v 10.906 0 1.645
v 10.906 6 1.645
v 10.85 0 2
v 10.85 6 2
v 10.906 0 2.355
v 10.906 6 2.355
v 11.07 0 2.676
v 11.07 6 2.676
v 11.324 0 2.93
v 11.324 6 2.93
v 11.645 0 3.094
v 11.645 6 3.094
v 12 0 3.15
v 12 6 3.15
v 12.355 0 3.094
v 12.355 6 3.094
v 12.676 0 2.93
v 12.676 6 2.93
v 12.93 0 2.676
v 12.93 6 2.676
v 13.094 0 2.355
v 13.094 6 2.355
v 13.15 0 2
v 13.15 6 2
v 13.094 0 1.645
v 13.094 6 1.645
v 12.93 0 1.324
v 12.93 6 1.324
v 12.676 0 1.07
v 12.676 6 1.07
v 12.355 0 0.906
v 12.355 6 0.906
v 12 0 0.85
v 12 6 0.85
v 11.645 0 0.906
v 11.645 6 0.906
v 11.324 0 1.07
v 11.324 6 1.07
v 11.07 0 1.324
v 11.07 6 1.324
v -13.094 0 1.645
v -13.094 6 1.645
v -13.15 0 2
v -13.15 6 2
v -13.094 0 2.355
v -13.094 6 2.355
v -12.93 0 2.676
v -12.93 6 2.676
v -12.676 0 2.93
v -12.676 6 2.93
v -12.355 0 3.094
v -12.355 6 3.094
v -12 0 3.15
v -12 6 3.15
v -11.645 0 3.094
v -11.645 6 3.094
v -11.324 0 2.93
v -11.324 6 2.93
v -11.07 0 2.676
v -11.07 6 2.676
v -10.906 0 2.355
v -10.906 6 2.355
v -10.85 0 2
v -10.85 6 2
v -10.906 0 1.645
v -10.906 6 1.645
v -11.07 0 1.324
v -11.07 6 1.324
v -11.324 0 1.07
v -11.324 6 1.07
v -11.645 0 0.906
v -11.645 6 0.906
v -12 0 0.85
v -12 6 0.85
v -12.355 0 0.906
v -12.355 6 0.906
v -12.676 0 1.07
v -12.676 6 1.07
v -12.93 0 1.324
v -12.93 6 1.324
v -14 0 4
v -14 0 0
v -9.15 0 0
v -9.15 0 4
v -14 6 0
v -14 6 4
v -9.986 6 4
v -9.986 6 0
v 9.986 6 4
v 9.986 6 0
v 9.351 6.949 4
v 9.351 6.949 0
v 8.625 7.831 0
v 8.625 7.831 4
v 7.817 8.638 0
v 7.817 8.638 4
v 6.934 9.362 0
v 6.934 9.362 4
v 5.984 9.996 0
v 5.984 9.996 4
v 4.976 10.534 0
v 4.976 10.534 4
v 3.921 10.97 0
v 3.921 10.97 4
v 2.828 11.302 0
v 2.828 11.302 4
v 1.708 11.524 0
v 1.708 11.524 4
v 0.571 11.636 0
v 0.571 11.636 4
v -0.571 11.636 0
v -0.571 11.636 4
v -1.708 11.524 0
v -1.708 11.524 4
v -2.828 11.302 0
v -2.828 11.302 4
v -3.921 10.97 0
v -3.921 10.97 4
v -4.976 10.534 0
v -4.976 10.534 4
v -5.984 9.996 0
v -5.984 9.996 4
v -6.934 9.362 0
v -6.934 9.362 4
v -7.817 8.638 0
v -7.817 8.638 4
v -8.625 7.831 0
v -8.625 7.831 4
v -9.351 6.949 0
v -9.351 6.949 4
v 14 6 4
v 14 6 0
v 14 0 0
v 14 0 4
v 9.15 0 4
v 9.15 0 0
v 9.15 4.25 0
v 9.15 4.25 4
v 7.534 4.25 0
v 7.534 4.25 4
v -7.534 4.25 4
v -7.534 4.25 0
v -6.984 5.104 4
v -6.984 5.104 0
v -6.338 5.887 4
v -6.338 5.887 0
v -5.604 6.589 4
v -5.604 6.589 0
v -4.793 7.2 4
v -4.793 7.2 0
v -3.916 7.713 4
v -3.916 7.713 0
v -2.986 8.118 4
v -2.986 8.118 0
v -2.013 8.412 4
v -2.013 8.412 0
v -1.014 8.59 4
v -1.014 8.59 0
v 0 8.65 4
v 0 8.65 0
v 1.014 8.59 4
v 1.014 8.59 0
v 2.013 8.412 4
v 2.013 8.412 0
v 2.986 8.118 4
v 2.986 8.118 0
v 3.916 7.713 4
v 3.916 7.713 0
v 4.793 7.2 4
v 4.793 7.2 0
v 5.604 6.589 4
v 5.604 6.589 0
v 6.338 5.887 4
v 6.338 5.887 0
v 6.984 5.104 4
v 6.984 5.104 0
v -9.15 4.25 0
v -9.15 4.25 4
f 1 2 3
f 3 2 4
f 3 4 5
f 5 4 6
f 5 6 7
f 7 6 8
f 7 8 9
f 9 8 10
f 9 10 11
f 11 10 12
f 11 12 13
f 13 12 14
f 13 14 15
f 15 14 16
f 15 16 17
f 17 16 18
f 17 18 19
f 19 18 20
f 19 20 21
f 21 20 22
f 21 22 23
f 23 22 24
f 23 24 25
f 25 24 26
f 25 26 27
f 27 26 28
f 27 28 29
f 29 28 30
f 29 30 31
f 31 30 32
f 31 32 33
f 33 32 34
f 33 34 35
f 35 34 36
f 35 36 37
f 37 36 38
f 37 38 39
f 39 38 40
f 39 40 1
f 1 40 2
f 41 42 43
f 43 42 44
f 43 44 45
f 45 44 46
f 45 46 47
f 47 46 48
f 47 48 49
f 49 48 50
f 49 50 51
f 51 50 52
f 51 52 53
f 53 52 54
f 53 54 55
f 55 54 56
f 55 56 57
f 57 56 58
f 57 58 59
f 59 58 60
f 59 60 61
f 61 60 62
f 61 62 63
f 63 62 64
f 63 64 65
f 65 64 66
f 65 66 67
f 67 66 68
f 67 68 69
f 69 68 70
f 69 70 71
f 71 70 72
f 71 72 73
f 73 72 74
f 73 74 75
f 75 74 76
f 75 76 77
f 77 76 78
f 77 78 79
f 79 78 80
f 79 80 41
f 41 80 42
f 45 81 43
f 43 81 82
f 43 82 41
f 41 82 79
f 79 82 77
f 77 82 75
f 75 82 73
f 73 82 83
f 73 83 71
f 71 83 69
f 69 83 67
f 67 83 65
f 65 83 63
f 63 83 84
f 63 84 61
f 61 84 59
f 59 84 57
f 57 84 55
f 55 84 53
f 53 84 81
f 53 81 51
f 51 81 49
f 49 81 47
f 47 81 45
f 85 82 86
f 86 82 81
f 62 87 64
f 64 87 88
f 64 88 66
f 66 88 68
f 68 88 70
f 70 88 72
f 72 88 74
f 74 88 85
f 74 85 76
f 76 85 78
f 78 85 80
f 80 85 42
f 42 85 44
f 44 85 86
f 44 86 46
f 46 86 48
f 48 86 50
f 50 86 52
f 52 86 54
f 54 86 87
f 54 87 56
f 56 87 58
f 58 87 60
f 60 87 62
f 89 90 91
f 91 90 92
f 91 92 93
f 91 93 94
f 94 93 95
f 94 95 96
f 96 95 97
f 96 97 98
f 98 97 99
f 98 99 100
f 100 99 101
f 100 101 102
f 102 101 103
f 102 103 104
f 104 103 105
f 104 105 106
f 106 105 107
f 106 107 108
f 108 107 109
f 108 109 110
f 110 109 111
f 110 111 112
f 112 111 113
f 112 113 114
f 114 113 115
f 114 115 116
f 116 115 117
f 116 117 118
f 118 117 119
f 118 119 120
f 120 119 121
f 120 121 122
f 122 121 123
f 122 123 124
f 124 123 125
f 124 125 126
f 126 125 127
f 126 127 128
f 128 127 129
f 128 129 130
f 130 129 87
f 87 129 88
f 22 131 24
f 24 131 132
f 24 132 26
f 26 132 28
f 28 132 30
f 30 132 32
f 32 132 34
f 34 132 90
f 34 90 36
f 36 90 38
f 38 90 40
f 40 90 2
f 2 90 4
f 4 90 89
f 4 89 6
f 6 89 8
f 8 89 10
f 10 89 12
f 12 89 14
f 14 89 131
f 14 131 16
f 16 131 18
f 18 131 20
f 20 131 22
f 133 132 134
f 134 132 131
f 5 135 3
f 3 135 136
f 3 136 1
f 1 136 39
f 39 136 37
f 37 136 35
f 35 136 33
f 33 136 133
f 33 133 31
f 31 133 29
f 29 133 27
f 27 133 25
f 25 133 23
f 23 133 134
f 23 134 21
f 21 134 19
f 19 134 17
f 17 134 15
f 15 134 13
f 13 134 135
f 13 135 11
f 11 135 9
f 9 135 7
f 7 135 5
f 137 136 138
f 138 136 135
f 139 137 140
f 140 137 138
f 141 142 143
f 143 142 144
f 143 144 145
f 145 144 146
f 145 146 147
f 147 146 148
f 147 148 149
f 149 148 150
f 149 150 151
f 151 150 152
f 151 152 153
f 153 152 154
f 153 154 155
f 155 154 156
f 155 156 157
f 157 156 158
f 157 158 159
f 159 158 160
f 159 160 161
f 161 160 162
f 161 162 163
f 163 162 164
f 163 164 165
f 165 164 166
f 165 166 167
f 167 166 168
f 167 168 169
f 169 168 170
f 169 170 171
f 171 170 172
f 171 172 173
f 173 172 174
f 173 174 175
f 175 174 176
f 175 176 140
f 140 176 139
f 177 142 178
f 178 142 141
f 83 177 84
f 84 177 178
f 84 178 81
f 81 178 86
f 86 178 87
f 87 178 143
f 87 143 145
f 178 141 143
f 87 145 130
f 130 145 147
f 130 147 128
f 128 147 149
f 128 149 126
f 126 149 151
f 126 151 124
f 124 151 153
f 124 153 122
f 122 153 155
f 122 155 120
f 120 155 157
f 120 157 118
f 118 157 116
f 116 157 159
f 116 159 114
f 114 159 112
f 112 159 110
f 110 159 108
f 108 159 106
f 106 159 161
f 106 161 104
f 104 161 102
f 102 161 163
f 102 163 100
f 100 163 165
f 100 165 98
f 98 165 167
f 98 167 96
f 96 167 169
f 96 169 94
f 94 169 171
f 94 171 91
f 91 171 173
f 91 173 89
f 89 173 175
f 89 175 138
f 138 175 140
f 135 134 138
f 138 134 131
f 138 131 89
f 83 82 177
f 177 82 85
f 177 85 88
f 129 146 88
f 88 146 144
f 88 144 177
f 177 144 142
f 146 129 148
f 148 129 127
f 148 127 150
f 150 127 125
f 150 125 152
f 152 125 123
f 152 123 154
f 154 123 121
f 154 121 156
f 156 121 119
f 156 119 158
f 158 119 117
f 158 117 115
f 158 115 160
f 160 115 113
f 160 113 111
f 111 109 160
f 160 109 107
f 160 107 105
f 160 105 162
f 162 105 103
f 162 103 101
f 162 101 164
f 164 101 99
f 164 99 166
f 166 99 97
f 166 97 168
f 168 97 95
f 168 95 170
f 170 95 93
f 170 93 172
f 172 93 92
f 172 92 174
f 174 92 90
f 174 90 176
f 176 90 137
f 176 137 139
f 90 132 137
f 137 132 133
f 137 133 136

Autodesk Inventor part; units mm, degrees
ref_plane "YZ Plane" through (0, 0, 0) normal (1, 0, 0) x (0, 1, 0)
ref_plane "XZ Plane" through (0, 0, 0) normal (0, 1, 0) x (-1, 0, 0)
ref_plane "XY Plane" through (0, 0, 0) normal (0, 0, 1) x (1, 0, 0)
sketch "스케치1" plane through (0, 0, 0) normal (0, 0, 1) x (1, 0, 0)
  line L0 (-14, 0) -> (14, 0)
  circle A0 centre (0, 0) radius 8.65
  line L1 (-9.15, 4.25) -> (9.15, 4.25)
  line L2 (9.15, 4.25) -> (9.15, -4.25)
  line L3 (9.15, -4.25) -> (-9.15, -4.25)
  line L4 (-9.15, -4.25) -> (-9.15, 4.25)
  line L5 (-9.15, 4.25) -> (9.15, -4.25) construction
  line L6 (9.15, 4.25) -> (-9.15, -4.25) construction
  line L7 (-14, 0) -> (-14, 6)
  line L8 (-14, 6) -> (-9.9861, 6)
  circle A1 centre (0, 0) radius 11.65
  line L9 (0, 0) -> (0, -1.5654)
  line L10 (14, 0) -> (14, 6)
  line L11 (14, 6) -> (9.9861, 6)
  point P0 (-9.15, 0)
  point P1 (-7.5339, 4.25)
  point P2 (7.5339, 4.25)
  point P3 (9.15, 0)
  dimension "d0" = 28
  dimension "d1" = 17.3
  dimension "d2" = 18.3
  dimension "d3" = 8.5
  dimension "d4" = 6
  dimension "d5" = 3
extrude "돌출1" add sketch "스케치1" along normal blind 4 contours L2 L1 A0 L4 L0 A1 | A1 L11 L10 L0 | L0 L7 L8 A1
sketch "스케치2" plane through (-14, 6, 0) normal (0, 1, 0) x (1, 0, 0)
  line L0 (2, -2) -> (26, -2)
  line L1 (4.0139, 0) -> (0, 0) projected
  line L2 (4.0139, 0) -> (23.9861, 0) projected
  circle A0 centre (2, -2) radius 1.15
  circle A1 centre (26, -2) radius 1.15
  point P0 (14, 0)
  point P1 (14, -2)
  point P2 (14, 0)
  dimension "d8" = 2
  dimension "d9" = 24
  dimension "d10" = 2.3
  dimension "d11" = 2.3
extrude "돌출2" cut sketch "스케치2" against normal up to surface (6 mm away)
properties part number "가스벨브 상단 커버"
